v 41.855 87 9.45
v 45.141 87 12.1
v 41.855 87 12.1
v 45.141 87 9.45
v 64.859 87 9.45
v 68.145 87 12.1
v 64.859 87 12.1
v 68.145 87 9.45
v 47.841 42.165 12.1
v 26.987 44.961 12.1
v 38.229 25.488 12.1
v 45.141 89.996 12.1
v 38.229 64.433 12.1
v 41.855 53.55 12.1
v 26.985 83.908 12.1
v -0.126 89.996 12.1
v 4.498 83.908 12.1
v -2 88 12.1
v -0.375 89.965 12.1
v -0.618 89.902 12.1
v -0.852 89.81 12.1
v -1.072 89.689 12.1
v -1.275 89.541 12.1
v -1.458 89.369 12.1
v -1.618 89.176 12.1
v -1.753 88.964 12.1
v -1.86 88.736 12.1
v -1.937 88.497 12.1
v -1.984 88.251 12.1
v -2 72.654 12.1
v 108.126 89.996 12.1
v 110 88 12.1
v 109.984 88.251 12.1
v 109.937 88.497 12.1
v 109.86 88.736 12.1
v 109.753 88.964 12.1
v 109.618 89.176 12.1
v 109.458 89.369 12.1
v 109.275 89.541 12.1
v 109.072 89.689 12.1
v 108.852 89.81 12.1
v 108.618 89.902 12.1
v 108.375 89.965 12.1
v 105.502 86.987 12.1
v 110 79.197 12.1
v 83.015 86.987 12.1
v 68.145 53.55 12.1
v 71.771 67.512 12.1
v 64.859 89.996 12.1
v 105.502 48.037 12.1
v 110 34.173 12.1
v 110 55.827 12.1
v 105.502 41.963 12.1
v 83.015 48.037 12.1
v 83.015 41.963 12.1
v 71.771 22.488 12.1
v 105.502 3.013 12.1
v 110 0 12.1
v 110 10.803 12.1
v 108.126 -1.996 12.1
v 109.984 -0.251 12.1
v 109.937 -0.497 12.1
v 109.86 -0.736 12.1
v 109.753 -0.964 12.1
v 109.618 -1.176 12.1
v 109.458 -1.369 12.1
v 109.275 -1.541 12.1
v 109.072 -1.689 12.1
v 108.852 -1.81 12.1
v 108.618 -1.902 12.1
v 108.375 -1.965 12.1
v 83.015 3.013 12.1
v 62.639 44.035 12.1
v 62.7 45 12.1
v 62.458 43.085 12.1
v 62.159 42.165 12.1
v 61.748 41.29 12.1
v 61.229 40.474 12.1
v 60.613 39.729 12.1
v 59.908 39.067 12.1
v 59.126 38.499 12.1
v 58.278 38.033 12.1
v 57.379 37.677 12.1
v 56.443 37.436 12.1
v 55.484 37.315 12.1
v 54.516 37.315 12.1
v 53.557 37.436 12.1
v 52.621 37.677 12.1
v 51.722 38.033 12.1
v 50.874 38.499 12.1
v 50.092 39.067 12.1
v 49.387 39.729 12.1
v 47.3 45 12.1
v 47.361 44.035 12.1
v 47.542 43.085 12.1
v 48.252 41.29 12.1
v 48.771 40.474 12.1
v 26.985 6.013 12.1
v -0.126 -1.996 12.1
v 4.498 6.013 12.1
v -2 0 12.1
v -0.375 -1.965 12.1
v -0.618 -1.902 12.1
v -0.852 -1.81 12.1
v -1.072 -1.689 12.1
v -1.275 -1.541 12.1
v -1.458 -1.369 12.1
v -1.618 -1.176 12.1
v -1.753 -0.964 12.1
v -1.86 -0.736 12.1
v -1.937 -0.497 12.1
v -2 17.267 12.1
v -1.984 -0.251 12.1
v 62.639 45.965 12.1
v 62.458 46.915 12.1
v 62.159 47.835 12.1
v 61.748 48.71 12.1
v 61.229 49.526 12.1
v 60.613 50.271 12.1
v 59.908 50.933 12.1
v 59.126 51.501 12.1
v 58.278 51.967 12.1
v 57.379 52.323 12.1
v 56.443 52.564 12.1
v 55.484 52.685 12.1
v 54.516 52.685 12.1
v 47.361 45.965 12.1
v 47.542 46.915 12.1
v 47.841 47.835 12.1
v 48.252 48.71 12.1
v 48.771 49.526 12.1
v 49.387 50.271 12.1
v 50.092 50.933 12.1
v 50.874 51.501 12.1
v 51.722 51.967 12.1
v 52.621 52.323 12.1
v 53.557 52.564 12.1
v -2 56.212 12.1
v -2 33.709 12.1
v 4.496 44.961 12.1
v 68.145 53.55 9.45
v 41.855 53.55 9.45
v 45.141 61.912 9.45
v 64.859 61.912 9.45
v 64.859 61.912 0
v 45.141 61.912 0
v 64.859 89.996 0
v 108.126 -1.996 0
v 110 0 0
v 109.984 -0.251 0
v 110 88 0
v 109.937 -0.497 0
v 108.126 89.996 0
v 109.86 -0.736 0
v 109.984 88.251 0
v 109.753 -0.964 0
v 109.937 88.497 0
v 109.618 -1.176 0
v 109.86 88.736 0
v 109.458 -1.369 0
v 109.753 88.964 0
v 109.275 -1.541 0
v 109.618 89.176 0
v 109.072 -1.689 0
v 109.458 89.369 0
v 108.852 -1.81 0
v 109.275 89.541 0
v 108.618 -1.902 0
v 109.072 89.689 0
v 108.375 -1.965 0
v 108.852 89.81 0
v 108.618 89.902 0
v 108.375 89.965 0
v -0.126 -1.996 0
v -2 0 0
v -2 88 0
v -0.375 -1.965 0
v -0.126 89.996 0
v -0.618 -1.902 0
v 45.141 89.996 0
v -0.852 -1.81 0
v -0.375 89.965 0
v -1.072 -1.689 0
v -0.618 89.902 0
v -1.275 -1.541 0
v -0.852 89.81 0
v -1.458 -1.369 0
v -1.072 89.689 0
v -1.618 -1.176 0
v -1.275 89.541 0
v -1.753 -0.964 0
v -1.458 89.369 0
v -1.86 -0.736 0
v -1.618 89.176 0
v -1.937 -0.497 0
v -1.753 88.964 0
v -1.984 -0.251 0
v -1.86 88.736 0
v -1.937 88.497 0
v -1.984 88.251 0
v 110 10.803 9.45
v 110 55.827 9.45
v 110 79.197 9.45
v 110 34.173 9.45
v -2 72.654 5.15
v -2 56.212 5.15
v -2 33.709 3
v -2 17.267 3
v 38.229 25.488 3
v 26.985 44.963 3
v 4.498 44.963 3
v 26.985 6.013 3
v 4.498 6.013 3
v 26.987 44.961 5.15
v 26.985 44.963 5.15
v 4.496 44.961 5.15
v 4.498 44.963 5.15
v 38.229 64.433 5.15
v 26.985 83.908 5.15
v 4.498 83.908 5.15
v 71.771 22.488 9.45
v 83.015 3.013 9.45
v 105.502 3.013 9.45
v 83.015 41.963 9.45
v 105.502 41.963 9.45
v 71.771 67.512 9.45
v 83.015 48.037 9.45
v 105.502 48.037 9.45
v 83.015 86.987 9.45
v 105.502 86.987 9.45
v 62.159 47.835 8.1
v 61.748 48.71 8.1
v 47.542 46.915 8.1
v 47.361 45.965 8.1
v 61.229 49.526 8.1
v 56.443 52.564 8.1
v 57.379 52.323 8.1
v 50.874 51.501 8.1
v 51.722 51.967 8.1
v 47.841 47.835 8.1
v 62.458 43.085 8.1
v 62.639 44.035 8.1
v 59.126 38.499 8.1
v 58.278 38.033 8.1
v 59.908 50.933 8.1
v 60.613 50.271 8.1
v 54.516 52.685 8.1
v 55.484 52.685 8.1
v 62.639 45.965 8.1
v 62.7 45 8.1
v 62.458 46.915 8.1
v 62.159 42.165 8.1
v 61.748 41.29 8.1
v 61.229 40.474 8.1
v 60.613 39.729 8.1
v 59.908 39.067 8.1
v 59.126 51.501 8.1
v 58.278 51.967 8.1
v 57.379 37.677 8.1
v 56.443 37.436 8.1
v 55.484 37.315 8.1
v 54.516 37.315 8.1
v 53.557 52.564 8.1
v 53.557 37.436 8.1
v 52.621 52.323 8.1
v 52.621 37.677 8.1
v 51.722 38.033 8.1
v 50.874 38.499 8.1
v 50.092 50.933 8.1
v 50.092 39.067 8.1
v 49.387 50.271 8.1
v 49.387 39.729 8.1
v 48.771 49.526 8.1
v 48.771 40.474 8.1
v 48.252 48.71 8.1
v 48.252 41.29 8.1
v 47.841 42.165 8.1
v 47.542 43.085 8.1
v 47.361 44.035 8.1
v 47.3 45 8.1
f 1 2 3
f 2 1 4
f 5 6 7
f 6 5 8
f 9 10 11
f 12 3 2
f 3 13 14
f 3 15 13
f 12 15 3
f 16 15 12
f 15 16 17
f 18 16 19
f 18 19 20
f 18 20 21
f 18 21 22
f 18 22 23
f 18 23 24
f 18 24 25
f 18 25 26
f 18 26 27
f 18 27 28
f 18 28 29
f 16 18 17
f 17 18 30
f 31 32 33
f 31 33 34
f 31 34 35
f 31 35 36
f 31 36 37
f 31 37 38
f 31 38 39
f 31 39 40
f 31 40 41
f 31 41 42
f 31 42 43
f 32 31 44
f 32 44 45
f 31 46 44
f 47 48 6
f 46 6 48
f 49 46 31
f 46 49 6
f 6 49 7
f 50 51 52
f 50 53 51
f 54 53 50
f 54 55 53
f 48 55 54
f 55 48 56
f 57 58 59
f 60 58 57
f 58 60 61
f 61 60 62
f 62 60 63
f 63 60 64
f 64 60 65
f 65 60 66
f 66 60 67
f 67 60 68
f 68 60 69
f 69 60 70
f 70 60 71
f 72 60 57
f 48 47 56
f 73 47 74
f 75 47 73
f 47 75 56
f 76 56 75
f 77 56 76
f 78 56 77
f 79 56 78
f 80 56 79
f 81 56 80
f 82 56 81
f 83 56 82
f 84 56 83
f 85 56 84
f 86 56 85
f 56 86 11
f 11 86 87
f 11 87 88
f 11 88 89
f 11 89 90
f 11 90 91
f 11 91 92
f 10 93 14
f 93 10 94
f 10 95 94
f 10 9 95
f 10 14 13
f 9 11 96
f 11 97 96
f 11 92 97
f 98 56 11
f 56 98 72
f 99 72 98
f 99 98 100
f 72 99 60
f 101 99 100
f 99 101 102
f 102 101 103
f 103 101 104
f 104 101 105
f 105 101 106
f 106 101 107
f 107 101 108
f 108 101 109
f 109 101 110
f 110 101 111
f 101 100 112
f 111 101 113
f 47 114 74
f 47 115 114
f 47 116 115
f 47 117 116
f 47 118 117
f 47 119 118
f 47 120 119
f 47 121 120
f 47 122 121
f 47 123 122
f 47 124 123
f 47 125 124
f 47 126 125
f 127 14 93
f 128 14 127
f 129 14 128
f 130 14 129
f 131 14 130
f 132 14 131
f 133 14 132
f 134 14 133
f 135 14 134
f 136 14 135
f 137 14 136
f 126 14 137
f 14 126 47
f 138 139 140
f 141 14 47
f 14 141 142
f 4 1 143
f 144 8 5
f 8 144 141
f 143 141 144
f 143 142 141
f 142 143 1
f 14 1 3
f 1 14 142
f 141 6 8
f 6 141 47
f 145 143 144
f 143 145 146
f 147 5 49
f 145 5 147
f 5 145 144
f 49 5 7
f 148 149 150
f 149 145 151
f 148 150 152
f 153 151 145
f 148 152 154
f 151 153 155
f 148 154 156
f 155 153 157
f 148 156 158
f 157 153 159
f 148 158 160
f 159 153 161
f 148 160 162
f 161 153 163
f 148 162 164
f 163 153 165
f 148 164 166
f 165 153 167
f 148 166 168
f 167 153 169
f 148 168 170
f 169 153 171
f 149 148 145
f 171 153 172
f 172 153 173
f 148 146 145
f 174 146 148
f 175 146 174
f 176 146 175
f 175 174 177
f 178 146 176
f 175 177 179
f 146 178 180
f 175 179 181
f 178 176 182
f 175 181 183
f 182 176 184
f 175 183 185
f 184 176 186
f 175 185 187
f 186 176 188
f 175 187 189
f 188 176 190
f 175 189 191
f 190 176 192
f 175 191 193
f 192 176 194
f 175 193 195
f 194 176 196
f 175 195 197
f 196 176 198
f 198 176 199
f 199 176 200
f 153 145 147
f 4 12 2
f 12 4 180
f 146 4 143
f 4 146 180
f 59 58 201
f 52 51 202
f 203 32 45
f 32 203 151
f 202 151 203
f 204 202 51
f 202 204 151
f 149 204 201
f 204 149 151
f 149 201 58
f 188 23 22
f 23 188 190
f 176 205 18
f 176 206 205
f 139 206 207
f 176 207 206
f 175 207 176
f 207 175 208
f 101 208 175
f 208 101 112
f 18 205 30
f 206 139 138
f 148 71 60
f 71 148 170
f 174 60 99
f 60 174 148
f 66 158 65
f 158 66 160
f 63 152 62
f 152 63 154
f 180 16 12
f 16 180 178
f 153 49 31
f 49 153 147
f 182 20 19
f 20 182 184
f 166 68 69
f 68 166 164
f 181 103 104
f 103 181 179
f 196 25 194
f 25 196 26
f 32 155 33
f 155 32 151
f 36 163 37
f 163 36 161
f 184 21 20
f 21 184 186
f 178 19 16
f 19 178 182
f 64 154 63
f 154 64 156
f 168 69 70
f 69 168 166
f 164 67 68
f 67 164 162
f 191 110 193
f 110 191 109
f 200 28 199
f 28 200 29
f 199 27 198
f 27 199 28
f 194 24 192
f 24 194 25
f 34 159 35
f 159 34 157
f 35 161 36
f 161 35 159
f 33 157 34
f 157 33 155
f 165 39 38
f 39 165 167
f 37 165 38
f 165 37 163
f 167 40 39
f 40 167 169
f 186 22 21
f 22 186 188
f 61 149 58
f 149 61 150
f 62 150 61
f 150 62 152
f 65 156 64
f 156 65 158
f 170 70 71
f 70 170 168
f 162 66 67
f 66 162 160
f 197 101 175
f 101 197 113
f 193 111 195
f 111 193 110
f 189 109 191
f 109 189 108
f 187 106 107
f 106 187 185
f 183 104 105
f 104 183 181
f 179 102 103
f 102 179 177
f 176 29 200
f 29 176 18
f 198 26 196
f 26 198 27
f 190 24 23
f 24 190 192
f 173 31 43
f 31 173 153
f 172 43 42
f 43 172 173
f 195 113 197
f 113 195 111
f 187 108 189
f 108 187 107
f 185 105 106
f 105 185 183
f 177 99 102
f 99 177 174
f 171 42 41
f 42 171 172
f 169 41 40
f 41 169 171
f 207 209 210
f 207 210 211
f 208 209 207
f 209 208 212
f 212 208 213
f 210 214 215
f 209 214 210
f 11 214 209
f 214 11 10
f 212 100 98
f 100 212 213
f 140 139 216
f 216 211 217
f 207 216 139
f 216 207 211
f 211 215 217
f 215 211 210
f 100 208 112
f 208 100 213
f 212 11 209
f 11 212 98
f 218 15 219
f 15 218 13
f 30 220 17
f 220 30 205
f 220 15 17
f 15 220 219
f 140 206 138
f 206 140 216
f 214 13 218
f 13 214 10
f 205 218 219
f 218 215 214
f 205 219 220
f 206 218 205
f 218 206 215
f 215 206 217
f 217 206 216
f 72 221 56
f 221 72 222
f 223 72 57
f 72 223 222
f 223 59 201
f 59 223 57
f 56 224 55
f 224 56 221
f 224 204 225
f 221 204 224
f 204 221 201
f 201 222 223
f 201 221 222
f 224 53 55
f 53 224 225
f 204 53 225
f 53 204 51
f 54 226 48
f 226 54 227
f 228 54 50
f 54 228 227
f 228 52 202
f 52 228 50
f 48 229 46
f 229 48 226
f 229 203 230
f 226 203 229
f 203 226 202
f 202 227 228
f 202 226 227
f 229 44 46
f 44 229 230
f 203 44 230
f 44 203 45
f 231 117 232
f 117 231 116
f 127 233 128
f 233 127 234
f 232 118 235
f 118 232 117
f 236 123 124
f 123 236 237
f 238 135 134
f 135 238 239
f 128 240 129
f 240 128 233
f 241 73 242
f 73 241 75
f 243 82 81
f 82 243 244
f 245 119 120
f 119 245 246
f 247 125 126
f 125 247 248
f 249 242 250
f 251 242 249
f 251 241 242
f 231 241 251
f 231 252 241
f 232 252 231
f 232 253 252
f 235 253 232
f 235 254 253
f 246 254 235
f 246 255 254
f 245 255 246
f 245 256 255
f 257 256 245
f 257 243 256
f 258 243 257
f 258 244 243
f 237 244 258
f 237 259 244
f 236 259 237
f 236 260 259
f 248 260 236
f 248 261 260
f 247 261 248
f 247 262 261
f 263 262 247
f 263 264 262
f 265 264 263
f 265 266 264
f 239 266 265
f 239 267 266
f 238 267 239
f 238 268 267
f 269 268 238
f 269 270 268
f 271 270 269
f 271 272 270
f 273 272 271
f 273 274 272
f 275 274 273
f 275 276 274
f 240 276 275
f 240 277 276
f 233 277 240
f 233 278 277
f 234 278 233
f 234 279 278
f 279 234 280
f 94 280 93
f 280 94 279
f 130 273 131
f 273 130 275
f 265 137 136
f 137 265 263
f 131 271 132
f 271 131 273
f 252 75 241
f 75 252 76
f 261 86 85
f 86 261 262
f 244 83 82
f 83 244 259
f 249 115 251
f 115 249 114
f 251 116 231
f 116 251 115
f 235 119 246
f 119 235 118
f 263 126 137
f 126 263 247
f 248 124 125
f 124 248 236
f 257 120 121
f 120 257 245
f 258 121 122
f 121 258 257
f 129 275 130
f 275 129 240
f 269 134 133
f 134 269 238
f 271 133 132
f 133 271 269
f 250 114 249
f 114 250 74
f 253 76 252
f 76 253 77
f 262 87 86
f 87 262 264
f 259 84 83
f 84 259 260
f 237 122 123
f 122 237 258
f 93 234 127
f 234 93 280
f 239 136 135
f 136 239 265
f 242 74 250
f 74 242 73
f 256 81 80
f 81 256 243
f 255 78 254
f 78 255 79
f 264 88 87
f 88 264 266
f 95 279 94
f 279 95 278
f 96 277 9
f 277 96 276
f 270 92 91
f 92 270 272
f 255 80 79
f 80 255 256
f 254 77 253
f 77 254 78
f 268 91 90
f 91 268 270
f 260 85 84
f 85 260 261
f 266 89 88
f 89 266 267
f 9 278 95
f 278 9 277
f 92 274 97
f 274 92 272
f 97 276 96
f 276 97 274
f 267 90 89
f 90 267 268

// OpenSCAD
// file: HexPileLib.scad
module LeftPile(totalHeight, singlePileHeight, singlePileDiameter, pileCount){
    pileHeight = (pileCount * singlePileHeight) + .5;
    offset = singlePileDiameter * .15;
    translate([singlePileDiameter/2 - offset, singlePileDiameter/2, totalHeight - pileHeight])
        cylinder(pileHeight, d=singlePileDiameter, $fn=6);
}

module RightPile(totalHeight, singlePileHeight, singlePileDiameter, pileCount){
    translate([0, singlePileDiameter, 0])
        rotate([0, 0, 180])
            LeftPile(totalHeight, singlePileHeight, singlePileDiameter, pileCount);
}

module BottomPile(totalHeight, singlePileHeight, singlePileDiameter, pileCount){
    translate([singlePileDiameter, 0, 0])
        rotate([0, 0, 90])
            LeftPile(totalHeight, singlePileHeight, singlePileDiameter, pileCount);
}

module TopPile(totalHeight, singlePileHeight, singlePileDiameter, pileCount){
        rotate([0, 0, 270])
            LeftPile(totalHeight, singlePileHeight, singlePileDiameter, pileCount);
}
// file: ColonistsPlacePileLib.scad
include<HexPileLib.scad>
//25.82 by 32.82 by 2.15
singlePlacePileHeight = 2.15;
//flat to flat = d = 38.15
//D = d * 2/rt(3)
d = 38.15 + .8;
D = d * 2/sqrt(3);
singlePlacePileDiameter = D;

module LeftPlacePile(totalHeight, placePileCount){
    LeftPile(
        totalHeight,
        singlePlacePileHeight,
        singlePlacePileDiameter,
        placePileCount);
}

module RightPlacePile(totalHeight, placePileCount){
    RightPile(
        totalHeight,
        singlePlacePileHeight,
        singlePlacePileDiameter,
        placePileCount);
}

module BottomPlacePile(totalHeight, placePileCount){
    BottomPile(
        totalHeight,
        singlePlacePileHeight,
        singlePlacePileDiameter,
        placePileCount);
}

module TopPlacePile(totalHeight, placePileCount){
    TopPile(
        totalHeight,
        singlePlacePileHeight,
        singlePlacePileDiameter,
        placePileCount);
}

function placePileHeight(placePileCount) =
    (placePileCount * singlePlacePileHeight) + .5;

function actualPlacePileWidth() = singlePlacePileDiameter * .85;
    
// main file
include<ColonistsPlacePileLib.scad>


magnetBaseInnerDiameter = 15.4;
magnetHeight = 4.0;
floorHeight = 3;
tileCount = 4;
height = placePileHeight(tileCount) + floorHeight;
length = 110;
wallThickness = 3;
width = 90;
firstPlayerWidth = 25.79 + .5;
firstPlayerLength = 32.95 + .5;
    
firstPlayerPileHeight = (1 * singlePlacePileHeight) + .5;
firstPlayerLengthOpeningSize = firstPlayerLength * .75;
firstPlayerWidthOpeningSize = firstPlayerWidth * .75;
firstPlayerBlockerSize = (firstPlayerWidth - firstPlayerWidthOpeningSize) / 2;
    
    
difference() {
    $fn=50;
    
    minkowski()
    {
        cube([length - 2, width - 2, height - 1]);
        cylinder(r=2,h=1);
    }
    translate([0, wallThickness, 0])
        LeftPlacePile(height, 4);
    translate([0, wallThickness + singlePlacePileDiameter - wallThickness * 2 - .03, 0])
        LeftPlacePile(height, 3);
    translate([length, 0, 0])
        RightPlacePile(height, 1);
    translate([length, width - singlePlacePileDiameter, 0])
        RightPlacePile(height, 1);
    translate([length/2 - (firstPlayerWidth)/2 - wallThickness, width, 0])
        rotate([0, 0, 270])
        {
            translate([wallThickness, wallThickness, height - firstPlayerPileHeight])
                cube([firstPlayerLength, firstPlayerWidth, firstPlayerPileHeight]);
            translate([-.00001, wallThickness + (firstPlayerBlockerSize), 0])
                cube([wallThickness + firstPlayerLengthOpeningSize, firstPlayerWidthOpeningSize, height]);
        }
    translate([length/2, width/2, height - magnetHeight])
        cylinder(magnetHeight, d=magnetBaseInnerDiameter);
}
